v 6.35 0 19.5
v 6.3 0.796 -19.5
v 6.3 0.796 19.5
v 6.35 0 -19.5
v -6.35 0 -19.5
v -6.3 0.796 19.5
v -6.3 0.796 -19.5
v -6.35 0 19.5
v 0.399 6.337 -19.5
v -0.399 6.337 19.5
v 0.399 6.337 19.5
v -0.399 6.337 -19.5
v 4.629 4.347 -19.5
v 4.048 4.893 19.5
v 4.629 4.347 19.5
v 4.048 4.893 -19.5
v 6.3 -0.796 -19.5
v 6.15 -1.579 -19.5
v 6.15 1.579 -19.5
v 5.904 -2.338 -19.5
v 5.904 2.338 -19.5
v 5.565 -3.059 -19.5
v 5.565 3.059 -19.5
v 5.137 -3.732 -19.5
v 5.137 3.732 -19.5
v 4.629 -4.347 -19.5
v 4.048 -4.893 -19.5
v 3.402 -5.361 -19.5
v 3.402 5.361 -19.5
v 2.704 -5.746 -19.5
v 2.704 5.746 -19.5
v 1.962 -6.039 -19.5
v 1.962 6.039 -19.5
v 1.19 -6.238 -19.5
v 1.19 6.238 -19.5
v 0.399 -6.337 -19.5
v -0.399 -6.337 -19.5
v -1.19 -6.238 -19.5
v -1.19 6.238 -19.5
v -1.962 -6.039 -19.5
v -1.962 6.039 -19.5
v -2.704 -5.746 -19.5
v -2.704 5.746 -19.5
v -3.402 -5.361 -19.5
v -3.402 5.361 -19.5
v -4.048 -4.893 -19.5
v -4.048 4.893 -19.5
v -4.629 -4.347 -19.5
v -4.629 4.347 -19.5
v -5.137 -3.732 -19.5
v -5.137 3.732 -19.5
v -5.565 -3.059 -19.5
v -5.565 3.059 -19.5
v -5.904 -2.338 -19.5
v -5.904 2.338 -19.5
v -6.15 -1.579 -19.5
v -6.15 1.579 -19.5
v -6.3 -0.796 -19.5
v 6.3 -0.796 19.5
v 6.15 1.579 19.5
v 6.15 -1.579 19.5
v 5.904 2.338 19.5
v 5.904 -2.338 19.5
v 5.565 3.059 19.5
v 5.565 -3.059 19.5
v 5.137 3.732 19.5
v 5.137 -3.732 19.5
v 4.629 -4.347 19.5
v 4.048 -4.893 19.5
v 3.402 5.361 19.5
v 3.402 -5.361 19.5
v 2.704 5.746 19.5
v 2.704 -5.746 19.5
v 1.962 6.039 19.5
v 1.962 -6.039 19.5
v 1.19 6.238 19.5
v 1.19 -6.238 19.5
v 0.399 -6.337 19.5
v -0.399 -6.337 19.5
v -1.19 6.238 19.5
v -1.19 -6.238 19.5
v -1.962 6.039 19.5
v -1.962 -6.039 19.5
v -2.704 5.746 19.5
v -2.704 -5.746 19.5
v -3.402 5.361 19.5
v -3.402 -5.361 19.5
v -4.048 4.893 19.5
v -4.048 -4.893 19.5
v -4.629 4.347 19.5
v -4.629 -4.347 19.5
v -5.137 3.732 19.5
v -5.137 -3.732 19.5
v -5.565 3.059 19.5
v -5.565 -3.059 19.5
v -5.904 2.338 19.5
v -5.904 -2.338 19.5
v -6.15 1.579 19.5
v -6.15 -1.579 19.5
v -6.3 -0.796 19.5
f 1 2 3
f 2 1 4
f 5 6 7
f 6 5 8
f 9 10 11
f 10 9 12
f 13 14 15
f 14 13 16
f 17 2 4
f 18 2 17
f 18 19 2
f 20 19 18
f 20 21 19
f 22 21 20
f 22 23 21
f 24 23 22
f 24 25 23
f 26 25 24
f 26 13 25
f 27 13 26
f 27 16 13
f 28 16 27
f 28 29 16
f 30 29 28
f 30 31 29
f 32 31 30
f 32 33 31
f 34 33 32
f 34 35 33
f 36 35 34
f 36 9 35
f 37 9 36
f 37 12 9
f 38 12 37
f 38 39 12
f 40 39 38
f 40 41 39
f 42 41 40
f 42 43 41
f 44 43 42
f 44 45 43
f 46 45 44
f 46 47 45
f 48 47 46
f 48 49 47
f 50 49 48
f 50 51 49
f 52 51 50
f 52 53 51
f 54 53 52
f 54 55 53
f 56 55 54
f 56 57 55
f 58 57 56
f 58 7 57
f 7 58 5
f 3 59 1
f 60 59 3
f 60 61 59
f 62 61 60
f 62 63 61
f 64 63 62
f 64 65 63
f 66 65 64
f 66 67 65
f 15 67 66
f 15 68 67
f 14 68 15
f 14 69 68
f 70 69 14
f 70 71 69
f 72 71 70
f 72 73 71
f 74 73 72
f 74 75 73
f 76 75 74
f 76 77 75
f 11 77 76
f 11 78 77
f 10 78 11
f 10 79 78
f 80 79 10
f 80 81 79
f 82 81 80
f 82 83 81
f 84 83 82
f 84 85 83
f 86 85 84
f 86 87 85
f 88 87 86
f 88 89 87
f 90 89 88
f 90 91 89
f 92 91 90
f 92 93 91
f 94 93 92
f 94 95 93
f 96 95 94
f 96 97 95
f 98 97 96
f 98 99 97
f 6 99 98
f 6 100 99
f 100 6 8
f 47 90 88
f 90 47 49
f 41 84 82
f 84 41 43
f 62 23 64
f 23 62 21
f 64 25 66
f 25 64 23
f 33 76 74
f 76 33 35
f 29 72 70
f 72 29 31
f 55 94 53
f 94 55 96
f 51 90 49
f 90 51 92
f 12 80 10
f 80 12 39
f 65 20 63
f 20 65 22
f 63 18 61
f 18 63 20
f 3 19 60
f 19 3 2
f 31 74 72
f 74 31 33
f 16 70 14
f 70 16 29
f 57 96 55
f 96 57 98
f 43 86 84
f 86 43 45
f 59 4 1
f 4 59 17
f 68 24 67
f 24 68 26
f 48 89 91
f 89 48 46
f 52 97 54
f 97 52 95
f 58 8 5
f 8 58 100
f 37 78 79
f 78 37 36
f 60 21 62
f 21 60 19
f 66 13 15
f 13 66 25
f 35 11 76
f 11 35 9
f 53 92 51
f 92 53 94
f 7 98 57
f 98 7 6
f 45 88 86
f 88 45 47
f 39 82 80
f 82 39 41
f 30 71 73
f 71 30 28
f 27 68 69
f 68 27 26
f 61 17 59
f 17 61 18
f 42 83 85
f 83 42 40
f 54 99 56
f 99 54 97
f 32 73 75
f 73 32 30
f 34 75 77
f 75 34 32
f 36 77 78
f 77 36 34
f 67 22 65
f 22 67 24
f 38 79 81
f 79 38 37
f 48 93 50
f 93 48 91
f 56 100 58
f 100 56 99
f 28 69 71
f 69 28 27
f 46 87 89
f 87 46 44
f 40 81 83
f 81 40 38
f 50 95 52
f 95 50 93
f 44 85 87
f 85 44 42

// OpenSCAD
$fn = 50;


difference() {
	union() {
		translate(v = [0, 0, -19.5000000000]) {
			cylinder(h = 39, r = 6.3500000000);
		}
	}
	union() {
		translate(v = [0, 0, -100.0000000000]) {
			cylinder(h = 200, r = 0);
		}
	}
}
